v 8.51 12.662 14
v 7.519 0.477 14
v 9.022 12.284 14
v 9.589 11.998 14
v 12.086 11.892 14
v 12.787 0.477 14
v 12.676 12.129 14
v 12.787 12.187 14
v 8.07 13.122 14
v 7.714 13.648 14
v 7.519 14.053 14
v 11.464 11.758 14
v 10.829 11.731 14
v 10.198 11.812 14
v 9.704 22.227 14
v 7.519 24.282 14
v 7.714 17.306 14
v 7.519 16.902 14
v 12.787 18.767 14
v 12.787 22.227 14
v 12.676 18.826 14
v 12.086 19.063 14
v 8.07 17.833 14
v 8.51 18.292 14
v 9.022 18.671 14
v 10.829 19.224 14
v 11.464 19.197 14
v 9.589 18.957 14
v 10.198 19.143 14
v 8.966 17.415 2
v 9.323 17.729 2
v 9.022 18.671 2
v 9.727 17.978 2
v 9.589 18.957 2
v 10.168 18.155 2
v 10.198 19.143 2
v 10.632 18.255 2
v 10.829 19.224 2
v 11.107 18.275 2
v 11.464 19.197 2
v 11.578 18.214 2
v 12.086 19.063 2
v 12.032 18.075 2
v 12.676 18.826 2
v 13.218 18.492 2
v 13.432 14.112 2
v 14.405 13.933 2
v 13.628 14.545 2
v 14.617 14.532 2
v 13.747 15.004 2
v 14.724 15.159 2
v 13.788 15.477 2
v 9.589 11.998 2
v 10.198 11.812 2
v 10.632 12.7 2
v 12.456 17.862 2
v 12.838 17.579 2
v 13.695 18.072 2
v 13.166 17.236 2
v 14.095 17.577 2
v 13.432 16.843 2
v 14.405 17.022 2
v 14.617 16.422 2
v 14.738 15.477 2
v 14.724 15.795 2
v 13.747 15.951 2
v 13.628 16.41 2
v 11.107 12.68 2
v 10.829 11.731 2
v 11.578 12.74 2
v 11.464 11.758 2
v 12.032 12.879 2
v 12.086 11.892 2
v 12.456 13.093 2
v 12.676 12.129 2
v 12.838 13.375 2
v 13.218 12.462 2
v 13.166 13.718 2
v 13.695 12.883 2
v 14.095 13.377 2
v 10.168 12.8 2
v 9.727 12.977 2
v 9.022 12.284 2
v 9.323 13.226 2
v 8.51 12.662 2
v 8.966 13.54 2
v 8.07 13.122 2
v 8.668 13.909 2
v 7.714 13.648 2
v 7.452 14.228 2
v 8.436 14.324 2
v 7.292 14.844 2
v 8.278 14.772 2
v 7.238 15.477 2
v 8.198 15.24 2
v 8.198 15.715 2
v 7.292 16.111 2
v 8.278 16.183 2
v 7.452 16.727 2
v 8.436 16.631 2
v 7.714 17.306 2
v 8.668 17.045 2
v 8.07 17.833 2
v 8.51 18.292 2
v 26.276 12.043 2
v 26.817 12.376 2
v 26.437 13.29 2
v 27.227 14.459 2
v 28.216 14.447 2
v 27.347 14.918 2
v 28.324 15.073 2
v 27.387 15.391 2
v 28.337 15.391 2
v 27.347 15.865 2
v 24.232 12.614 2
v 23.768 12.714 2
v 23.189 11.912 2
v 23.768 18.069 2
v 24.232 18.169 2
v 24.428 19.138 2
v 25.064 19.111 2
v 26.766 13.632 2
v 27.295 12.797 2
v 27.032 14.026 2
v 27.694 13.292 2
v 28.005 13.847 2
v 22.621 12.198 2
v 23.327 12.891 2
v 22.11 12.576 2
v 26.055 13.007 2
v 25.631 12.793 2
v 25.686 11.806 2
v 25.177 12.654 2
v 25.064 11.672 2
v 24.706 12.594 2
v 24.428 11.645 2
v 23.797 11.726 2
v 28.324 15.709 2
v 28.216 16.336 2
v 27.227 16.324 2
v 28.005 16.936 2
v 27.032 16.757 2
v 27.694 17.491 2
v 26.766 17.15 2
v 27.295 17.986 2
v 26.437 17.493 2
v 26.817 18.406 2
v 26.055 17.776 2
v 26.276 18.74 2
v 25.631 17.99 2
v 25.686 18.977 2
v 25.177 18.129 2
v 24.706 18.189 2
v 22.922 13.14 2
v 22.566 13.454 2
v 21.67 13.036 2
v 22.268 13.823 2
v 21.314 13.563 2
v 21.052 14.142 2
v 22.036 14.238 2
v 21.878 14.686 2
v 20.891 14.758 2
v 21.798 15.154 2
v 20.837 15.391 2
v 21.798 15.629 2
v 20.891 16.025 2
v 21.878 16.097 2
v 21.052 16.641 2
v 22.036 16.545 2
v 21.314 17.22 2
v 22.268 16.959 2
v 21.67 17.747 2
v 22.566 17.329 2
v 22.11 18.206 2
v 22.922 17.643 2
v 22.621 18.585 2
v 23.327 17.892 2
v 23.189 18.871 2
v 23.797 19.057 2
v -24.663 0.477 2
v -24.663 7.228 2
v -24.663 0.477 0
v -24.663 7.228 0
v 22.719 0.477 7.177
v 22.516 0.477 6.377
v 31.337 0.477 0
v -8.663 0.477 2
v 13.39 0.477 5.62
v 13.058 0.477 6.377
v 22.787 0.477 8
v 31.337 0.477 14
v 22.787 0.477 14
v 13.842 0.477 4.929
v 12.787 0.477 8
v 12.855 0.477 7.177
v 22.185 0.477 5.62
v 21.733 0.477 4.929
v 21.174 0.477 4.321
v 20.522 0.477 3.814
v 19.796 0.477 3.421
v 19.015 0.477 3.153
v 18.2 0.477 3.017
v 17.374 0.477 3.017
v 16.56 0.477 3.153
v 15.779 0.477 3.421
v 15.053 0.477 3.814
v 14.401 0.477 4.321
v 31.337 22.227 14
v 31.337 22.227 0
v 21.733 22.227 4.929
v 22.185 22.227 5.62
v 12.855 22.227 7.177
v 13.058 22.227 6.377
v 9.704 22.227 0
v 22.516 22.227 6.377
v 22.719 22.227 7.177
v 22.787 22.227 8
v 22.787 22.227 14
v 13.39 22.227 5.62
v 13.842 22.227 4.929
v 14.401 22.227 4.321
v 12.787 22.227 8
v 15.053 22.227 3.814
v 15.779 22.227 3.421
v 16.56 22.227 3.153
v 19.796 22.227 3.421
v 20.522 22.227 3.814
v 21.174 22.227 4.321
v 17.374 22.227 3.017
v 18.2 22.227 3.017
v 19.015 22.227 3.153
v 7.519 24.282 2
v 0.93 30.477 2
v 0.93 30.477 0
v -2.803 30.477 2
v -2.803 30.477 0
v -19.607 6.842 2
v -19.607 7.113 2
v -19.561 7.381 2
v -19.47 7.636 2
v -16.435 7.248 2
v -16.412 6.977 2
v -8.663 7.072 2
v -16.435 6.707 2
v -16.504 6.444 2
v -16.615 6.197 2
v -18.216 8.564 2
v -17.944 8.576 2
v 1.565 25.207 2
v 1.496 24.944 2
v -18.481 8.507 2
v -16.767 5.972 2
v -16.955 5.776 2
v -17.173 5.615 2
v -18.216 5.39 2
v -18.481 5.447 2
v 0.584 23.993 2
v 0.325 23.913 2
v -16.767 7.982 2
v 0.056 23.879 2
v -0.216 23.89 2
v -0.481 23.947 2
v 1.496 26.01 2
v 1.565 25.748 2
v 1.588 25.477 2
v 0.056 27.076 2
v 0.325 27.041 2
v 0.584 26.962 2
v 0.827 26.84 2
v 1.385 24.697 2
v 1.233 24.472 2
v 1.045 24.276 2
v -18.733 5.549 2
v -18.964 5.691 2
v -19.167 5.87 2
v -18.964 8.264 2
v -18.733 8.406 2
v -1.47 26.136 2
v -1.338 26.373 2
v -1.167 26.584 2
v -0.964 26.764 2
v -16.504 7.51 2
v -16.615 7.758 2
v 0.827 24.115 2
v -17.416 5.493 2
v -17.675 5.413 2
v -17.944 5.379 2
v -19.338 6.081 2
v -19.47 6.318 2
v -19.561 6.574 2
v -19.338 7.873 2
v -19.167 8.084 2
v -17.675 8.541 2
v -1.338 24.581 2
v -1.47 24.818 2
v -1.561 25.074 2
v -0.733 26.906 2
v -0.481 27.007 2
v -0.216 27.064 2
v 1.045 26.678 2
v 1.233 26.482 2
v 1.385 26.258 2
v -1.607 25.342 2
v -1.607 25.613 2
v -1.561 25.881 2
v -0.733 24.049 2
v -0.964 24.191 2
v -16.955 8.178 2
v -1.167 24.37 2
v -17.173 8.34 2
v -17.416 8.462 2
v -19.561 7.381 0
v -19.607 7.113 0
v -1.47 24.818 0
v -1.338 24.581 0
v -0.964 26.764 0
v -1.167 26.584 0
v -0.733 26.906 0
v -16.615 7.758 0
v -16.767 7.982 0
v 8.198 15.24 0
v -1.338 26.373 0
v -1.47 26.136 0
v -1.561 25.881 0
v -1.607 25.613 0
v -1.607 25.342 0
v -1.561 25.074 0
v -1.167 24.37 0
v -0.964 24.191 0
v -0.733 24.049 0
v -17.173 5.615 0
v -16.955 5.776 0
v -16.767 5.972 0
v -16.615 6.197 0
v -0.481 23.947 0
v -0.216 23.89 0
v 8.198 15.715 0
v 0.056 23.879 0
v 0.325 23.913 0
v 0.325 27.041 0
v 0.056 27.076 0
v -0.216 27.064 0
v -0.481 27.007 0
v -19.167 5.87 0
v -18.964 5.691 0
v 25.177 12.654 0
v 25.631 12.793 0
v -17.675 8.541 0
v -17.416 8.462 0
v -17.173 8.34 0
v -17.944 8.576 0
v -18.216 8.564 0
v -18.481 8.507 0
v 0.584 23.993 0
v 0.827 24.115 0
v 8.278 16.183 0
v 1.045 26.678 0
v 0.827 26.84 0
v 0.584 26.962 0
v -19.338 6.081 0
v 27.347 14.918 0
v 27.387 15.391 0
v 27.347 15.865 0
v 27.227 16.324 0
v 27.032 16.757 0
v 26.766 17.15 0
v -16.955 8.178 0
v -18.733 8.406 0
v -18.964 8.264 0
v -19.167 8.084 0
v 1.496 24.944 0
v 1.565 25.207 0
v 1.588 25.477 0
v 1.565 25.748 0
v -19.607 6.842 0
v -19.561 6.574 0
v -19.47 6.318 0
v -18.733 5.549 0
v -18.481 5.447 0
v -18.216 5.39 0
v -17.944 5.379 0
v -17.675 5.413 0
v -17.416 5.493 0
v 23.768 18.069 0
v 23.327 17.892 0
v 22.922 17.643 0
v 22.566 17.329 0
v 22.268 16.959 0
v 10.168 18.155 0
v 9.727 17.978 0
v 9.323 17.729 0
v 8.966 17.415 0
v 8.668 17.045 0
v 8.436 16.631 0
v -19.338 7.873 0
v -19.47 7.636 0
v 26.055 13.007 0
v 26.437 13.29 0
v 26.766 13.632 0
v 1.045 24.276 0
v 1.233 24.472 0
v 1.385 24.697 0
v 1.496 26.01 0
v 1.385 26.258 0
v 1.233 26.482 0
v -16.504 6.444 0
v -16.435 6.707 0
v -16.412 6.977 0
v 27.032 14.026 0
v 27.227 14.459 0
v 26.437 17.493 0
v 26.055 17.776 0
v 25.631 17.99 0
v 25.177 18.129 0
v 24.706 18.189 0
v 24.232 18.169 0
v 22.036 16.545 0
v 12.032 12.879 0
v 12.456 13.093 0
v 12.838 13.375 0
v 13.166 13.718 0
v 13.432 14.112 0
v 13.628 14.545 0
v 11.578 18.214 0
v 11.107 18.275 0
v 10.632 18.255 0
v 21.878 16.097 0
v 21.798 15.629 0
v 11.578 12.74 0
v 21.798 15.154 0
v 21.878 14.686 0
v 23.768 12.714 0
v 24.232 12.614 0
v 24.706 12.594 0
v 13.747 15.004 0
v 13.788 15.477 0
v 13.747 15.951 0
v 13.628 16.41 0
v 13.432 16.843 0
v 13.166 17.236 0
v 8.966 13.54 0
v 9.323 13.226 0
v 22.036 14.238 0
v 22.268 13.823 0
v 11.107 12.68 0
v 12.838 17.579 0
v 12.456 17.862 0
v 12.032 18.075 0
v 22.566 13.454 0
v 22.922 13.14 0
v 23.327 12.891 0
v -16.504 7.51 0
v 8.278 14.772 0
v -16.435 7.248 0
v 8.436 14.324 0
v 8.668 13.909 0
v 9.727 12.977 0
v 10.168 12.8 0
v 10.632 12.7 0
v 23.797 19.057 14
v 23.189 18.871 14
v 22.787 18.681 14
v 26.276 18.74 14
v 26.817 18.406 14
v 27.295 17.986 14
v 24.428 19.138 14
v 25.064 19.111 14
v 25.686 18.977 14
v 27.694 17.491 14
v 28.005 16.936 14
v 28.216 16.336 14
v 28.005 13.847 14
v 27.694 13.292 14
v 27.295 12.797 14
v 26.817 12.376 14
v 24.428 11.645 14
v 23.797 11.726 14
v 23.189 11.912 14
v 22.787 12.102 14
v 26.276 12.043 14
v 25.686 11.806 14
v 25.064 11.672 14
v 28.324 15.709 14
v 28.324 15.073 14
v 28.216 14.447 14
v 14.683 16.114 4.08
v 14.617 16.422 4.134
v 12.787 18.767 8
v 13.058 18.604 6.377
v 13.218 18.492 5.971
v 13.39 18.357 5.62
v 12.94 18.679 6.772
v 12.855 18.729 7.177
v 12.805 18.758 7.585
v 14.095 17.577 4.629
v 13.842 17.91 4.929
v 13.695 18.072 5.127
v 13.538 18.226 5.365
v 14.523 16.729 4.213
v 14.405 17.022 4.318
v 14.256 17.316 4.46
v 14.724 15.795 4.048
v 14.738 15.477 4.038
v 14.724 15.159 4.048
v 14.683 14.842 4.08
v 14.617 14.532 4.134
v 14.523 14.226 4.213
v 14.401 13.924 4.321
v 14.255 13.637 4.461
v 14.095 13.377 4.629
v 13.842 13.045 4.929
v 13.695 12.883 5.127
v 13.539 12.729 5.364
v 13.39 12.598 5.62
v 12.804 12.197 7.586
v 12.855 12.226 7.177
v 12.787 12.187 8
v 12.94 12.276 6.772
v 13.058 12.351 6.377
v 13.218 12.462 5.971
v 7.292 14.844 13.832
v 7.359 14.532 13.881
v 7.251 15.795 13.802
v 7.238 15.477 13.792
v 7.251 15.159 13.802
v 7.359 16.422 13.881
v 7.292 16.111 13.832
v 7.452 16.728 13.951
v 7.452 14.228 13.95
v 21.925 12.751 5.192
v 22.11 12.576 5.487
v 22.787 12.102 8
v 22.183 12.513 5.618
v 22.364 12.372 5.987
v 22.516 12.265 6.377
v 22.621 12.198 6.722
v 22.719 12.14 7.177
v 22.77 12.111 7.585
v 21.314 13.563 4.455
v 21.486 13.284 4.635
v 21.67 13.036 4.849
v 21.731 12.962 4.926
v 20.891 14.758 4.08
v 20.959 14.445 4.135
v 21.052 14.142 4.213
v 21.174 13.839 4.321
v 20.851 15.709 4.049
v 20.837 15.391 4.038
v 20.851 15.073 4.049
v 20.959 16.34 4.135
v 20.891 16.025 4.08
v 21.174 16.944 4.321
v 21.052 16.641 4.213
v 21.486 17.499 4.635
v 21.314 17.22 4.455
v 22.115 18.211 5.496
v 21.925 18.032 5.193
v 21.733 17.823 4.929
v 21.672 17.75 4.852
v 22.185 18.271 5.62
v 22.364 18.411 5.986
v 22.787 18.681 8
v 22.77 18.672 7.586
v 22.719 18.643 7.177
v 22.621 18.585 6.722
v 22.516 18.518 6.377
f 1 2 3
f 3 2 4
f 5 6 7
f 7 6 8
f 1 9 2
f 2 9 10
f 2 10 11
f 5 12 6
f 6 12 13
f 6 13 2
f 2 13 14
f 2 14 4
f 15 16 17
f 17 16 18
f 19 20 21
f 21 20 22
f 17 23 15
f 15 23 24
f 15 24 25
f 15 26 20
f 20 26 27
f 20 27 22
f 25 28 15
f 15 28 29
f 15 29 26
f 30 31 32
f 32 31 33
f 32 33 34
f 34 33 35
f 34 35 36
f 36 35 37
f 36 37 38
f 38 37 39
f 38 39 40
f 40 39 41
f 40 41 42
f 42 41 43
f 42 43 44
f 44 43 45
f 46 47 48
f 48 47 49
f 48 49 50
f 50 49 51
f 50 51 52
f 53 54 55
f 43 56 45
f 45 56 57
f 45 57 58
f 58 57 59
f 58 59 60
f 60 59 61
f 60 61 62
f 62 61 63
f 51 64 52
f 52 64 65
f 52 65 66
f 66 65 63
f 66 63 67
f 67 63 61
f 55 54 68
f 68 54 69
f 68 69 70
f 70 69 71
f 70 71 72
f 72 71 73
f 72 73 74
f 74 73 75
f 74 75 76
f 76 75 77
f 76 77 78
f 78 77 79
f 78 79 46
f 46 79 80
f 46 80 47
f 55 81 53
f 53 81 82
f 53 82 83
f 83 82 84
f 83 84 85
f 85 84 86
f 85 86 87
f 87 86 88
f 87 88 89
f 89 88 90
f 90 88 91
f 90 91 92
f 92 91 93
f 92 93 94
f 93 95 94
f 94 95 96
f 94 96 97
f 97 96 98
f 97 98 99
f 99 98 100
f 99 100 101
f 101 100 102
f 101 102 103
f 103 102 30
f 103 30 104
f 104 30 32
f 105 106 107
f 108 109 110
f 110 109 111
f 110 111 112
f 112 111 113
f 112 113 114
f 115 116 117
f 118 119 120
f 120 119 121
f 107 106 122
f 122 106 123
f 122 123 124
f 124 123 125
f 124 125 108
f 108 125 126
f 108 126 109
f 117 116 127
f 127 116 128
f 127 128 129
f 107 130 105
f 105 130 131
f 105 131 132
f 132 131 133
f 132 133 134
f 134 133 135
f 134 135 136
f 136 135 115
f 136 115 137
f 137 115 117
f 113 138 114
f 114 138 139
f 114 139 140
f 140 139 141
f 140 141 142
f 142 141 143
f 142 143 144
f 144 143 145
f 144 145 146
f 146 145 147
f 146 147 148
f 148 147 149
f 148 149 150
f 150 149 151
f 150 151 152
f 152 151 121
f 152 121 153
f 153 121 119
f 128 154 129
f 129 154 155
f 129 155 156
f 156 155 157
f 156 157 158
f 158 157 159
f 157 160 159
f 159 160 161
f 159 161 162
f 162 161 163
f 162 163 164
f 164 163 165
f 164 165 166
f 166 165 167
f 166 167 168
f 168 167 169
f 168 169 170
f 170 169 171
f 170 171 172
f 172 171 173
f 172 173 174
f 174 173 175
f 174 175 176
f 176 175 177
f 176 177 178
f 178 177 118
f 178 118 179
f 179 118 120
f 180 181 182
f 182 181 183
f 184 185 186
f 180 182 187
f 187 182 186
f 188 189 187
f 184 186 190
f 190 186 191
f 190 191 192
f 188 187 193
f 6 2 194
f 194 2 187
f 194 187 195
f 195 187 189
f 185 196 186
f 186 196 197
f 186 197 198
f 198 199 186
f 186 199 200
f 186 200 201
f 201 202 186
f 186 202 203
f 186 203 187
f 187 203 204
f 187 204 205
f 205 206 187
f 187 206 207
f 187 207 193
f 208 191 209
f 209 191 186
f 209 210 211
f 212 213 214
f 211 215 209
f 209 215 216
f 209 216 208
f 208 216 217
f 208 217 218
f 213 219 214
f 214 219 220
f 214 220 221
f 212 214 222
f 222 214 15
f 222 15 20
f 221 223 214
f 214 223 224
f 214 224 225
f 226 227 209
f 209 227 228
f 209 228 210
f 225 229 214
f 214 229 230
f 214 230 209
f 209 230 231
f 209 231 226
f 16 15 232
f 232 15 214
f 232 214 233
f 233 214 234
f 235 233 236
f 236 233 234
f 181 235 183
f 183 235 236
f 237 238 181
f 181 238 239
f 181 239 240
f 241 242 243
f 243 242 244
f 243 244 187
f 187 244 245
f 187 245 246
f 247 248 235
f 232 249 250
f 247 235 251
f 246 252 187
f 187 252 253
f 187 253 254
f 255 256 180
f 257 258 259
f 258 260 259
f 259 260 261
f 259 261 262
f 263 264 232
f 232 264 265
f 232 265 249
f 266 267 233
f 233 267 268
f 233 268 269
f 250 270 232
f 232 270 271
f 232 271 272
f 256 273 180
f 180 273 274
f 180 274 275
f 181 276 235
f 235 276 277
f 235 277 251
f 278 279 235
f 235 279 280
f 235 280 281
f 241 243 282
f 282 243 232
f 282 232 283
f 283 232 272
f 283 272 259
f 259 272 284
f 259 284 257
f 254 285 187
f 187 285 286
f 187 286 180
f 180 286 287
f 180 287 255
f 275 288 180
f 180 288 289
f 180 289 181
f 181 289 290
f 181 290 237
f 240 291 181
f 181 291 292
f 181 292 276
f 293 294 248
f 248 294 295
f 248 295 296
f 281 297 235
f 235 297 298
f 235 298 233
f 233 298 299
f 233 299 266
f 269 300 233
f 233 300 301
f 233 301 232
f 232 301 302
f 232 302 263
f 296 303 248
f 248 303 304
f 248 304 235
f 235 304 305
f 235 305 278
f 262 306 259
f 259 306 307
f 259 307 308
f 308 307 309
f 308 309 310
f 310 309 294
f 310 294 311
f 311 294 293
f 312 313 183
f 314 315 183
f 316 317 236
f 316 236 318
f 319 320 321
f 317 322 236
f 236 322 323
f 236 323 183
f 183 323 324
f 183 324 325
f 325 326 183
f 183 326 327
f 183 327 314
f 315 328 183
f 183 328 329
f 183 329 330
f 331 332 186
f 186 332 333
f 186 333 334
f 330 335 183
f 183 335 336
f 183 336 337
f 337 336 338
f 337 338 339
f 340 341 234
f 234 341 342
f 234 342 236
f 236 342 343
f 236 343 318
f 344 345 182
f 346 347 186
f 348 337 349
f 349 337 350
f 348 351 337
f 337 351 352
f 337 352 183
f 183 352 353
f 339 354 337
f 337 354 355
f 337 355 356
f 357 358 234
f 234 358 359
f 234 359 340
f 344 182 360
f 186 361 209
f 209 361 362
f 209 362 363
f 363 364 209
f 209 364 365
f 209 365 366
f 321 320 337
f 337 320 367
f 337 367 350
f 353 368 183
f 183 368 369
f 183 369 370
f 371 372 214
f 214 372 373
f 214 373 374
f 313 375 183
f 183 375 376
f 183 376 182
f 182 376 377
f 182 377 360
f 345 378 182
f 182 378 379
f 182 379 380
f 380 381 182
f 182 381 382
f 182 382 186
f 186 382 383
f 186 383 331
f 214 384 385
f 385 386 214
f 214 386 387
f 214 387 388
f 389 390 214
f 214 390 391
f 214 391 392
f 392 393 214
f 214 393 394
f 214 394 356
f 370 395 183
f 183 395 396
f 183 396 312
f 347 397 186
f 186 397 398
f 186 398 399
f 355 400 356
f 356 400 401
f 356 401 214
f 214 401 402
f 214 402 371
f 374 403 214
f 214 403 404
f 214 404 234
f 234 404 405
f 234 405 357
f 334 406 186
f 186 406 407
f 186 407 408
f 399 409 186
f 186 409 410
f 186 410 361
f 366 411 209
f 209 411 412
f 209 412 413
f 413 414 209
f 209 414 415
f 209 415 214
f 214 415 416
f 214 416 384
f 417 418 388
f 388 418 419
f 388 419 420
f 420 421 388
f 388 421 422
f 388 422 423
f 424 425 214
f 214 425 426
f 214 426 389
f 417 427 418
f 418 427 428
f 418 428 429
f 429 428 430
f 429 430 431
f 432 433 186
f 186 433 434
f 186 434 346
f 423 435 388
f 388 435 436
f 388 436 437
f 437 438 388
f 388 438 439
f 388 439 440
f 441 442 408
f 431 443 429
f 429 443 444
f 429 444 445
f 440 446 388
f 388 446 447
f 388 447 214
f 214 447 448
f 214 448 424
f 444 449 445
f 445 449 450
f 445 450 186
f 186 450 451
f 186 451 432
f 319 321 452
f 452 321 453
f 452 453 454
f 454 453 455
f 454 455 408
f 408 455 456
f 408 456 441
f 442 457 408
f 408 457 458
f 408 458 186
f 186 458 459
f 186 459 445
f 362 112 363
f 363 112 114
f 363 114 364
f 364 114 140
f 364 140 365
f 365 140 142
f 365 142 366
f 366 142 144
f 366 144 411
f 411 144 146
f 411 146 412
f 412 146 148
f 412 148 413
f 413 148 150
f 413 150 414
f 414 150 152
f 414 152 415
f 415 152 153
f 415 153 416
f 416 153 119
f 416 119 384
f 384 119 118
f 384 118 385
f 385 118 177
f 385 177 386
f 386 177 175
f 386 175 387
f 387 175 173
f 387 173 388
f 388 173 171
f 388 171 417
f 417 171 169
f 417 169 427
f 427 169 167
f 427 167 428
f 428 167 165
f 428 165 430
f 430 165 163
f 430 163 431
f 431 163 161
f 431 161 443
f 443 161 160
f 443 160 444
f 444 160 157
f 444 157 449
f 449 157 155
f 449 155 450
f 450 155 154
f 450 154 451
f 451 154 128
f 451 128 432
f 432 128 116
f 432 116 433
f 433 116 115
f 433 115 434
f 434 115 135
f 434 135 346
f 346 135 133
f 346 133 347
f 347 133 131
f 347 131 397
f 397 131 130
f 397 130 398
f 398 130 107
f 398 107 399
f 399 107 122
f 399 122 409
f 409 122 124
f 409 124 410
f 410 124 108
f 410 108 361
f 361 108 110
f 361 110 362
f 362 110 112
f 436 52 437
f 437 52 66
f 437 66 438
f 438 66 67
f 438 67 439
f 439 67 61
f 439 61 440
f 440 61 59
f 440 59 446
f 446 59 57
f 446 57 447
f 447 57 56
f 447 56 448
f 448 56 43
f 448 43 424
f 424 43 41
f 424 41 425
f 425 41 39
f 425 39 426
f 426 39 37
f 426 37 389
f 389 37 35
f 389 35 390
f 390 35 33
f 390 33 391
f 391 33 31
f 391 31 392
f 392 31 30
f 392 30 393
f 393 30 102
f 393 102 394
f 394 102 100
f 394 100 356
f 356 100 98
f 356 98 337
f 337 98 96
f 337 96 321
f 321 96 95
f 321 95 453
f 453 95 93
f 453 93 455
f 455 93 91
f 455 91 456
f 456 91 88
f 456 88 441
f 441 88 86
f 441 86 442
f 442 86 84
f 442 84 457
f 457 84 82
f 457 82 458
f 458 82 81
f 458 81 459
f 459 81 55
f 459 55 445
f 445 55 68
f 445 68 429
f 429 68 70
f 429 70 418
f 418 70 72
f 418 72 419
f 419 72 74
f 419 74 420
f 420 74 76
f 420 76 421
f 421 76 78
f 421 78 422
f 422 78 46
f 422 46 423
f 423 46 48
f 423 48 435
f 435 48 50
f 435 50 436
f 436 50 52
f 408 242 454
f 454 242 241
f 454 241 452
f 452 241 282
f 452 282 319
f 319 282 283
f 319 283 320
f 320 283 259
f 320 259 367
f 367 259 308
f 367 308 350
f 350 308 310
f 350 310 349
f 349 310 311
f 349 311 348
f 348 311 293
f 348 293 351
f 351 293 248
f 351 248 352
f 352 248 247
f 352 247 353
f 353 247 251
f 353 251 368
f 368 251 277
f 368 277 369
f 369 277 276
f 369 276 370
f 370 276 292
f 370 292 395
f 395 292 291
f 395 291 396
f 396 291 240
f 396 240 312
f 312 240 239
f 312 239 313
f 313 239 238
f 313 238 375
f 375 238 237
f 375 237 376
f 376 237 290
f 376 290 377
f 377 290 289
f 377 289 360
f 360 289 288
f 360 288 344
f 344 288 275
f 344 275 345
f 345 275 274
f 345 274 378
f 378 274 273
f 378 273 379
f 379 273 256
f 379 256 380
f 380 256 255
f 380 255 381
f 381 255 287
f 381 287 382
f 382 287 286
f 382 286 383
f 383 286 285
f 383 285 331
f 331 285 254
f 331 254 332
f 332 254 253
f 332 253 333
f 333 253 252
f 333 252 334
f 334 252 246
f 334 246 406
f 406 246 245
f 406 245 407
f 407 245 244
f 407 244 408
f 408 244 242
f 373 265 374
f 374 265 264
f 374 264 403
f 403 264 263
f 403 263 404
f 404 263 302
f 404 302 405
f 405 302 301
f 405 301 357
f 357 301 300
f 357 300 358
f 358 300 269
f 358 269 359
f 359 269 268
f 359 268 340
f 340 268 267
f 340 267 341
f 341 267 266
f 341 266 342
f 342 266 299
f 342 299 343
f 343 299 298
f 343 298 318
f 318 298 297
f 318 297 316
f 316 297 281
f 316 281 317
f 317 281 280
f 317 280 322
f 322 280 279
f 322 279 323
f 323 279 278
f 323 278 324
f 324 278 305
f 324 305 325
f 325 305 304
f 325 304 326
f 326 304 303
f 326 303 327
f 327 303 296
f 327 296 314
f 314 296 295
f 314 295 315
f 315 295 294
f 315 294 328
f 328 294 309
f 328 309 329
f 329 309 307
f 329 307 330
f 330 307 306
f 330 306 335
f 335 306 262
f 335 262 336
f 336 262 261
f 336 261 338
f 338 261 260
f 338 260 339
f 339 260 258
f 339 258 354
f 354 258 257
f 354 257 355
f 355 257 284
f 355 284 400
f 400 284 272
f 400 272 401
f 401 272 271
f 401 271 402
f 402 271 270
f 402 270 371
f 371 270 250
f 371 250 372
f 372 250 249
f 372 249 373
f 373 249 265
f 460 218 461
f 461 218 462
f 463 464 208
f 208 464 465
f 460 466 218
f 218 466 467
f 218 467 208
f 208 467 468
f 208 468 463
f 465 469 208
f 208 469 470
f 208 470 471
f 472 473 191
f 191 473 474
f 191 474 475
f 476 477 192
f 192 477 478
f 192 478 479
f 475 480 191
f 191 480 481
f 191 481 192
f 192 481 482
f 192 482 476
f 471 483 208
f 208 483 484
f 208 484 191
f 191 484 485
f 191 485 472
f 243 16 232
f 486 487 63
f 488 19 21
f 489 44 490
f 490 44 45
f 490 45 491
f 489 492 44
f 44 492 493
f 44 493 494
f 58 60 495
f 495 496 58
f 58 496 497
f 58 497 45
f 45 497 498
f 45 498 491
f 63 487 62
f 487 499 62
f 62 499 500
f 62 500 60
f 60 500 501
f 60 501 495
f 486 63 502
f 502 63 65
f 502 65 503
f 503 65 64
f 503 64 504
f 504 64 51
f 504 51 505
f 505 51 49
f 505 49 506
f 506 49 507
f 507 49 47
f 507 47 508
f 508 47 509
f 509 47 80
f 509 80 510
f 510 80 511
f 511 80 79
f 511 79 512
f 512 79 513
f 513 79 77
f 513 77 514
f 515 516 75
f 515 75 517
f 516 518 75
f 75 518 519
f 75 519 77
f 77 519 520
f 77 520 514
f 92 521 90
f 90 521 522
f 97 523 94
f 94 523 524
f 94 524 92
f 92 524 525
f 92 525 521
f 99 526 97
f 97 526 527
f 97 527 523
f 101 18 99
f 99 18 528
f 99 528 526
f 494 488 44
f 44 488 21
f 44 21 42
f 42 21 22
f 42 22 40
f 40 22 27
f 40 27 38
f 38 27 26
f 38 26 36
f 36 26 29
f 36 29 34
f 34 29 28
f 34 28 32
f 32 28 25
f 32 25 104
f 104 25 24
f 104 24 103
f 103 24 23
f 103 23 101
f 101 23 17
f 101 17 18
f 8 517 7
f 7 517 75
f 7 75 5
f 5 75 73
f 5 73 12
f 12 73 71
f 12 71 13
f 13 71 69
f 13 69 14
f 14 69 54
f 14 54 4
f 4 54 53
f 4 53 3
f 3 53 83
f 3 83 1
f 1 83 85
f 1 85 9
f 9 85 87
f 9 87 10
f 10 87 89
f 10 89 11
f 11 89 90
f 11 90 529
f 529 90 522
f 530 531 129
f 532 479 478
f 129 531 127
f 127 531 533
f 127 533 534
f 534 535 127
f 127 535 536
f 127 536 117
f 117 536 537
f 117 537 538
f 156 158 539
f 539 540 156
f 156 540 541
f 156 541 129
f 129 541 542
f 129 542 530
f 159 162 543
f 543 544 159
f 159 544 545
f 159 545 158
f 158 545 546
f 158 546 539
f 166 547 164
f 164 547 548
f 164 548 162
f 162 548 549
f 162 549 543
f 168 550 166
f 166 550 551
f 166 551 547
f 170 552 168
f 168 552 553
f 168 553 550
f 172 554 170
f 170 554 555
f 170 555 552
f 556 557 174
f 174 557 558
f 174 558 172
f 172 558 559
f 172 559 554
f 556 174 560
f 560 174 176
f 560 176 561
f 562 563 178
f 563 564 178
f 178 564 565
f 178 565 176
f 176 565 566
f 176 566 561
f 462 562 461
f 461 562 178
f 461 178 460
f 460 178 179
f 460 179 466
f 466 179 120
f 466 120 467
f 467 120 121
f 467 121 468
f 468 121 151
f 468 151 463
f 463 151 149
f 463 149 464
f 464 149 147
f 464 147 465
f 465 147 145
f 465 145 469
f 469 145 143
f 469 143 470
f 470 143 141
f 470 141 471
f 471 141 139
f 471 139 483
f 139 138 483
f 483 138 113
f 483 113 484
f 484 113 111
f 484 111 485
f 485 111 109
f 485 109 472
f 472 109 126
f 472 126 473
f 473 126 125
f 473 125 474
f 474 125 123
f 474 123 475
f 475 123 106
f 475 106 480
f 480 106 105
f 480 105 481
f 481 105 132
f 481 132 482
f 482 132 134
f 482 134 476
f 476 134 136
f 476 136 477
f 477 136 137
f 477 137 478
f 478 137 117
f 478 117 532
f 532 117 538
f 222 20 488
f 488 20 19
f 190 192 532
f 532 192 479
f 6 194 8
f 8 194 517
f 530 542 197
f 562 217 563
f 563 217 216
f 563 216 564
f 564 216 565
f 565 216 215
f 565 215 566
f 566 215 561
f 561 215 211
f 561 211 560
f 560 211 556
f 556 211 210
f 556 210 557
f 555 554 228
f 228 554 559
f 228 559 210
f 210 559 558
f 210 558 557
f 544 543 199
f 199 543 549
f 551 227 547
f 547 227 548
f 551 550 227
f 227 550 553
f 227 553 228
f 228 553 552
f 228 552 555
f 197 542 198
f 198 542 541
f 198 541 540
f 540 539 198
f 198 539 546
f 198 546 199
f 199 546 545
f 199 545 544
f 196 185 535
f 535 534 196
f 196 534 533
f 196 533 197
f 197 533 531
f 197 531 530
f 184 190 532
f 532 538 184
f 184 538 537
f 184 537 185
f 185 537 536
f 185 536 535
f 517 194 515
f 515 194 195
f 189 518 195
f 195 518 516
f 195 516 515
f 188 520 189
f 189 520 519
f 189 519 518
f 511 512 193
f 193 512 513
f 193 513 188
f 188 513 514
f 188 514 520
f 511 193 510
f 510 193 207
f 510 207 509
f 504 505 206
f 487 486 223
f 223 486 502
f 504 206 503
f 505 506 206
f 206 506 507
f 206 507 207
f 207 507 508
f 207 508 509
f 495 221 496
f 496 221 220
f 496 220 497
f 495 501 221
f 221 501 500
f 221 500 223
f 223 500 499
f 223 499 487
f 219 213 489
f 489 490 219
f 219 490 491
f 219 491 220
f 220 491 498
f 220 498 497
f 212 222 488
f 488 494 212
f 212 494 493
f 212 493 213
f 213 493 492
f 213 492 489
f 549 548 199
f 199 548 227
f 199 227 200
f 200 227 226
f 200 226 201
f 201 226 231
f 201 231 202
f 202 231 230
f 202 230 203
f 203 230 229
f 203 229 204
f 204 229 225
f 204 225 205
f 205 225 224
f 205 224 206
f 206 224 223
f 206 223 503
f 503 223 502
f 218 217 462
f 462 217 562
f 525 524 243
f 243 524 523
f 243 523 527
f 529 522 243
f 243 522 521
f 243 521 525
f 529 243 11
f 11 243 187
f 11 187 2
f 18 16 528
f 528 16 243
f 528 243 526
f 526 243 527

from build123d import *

# Parameters (mm, degrees)
BOSS_EXTRUDE1_DEPTH     = 2
SKETCH3_R               = 1.6
SKETCH3_R_2             = 2.8
CUT_EXTRUDE1_DEPTH      = 2
SKETCH5_R               = 3.75
BOSS_EXTRUDE2_DEPTH     = 12
CUT_EXTRUDE2_DEPTH      = 41.633693803
CUT_EXTRUDE3_DEPTH      = 41.633693891
CUT_EXTRUDE3_DEPTH_BACK = 41.633693891


with BuildPart() as part:
    # Sketch2 → Boss-Extrude1 (new body)
    with BuildSketch(Plane.XY):
        Polygon((-24.662569153, 7.22803975), (-2.803398565, 30.477324023), (0.929669822, 30.477324023), (9.704320922, 22.227324023), (31.337430847, 22.227324023), (31.337430847, 0.477324023), (-24.662569153, 0.477324023), align=None)
    extrude(amount=BOSS_EXTRUDE1_DEPTH)

    # Sketch3 → Cut-Extrude1 (cut)
    with BuildSketch(Plane.XY.offset(2)):
        with Locations((-0.012297753, 25.477324023)):
            Circle(SKETCH3_R)
        with Locations((-18.012297753, 6.977324023)):
            Circle(SKETCH3_R)
        with Locations((10.987702247, 15.477324023)):
            Circle(SKETCH3_R_2)
        with Locations((24.587430847, 15.391405477)):
            Circle(SKETCH3_R_2)
    extrude(amount=-CUT_EXTRUDE1_DEPTH, mode=Mode.SUBTRACT)

    # Sketch5 → Boss-Extrude2 (add)
    with BuildSketch(Plane.XY.offset(2)):
        Polygon((-8.662569153, 7.072030866), (7.518665156, 24.282295767), (9.704320922, 22.227324023), (31.337430847, 22.227324023), (31.337430847, 3.477324023), (31.337430847, 0.477324023), (-8.662569153, 0.477324023), align=None)
        with Locations((10.987702247, 15.477324023)):
            Circle(SKETCH5_R, mode=Mode.SUBTRACT)
        with Locations((24.587430847, 15.391405477)):
            Circle(SKETCH5_R, mode=Mode.SUBTRACT)
    extrude(amount=BOSS_EXTRUDE2_DEPTH)

    # Sketch10 → Cut-Extrude2 (cut, through all)
    with BuildSketch(Plane(origin=(0, 22.227324023, 0), x_dir=(1, 0, 0), z_dir=(0, 1, 0))):
        with BuildLine():
            Line((12.787295144, -14), (12.787295144, -8))
            ThreePointArc((12.787295144, -8), (17.787295144, -3), (22.787295144, -8))
            Line((22.787295144, -8), (22.787295144, -14))
            ThreePointArc((22.787295144, -14), (17.787295144, -19), (12.787295144, -14))
        make_face()
    extrude(amount=-CUT_EXTRUDE2_DEPTH, mode=Mode.SUBTRACT)

    # Sketch11 → Cut-Extrude3 (cut, two sides: drawn at the far end of the back side and taken through both)
    with BuildSketch(Plane(origin=(0, 22.227324023, 0), x_dir=(1, 0, 0), z_dir=(0, 1, 0)).offset(-CUT_EXTRUDE3_DEPTH_BACK)):
        Polygon((-8.662569153, -2), (7.518665156, -14), (-8.662569153, -14), align=None)
    extrude(amount=CUT_EXTRUDE3_DEPTH + CUT_EXTRUDE3_DEPTH_BACK, mode=Mode.SUBTRACT)


solid = part.part
